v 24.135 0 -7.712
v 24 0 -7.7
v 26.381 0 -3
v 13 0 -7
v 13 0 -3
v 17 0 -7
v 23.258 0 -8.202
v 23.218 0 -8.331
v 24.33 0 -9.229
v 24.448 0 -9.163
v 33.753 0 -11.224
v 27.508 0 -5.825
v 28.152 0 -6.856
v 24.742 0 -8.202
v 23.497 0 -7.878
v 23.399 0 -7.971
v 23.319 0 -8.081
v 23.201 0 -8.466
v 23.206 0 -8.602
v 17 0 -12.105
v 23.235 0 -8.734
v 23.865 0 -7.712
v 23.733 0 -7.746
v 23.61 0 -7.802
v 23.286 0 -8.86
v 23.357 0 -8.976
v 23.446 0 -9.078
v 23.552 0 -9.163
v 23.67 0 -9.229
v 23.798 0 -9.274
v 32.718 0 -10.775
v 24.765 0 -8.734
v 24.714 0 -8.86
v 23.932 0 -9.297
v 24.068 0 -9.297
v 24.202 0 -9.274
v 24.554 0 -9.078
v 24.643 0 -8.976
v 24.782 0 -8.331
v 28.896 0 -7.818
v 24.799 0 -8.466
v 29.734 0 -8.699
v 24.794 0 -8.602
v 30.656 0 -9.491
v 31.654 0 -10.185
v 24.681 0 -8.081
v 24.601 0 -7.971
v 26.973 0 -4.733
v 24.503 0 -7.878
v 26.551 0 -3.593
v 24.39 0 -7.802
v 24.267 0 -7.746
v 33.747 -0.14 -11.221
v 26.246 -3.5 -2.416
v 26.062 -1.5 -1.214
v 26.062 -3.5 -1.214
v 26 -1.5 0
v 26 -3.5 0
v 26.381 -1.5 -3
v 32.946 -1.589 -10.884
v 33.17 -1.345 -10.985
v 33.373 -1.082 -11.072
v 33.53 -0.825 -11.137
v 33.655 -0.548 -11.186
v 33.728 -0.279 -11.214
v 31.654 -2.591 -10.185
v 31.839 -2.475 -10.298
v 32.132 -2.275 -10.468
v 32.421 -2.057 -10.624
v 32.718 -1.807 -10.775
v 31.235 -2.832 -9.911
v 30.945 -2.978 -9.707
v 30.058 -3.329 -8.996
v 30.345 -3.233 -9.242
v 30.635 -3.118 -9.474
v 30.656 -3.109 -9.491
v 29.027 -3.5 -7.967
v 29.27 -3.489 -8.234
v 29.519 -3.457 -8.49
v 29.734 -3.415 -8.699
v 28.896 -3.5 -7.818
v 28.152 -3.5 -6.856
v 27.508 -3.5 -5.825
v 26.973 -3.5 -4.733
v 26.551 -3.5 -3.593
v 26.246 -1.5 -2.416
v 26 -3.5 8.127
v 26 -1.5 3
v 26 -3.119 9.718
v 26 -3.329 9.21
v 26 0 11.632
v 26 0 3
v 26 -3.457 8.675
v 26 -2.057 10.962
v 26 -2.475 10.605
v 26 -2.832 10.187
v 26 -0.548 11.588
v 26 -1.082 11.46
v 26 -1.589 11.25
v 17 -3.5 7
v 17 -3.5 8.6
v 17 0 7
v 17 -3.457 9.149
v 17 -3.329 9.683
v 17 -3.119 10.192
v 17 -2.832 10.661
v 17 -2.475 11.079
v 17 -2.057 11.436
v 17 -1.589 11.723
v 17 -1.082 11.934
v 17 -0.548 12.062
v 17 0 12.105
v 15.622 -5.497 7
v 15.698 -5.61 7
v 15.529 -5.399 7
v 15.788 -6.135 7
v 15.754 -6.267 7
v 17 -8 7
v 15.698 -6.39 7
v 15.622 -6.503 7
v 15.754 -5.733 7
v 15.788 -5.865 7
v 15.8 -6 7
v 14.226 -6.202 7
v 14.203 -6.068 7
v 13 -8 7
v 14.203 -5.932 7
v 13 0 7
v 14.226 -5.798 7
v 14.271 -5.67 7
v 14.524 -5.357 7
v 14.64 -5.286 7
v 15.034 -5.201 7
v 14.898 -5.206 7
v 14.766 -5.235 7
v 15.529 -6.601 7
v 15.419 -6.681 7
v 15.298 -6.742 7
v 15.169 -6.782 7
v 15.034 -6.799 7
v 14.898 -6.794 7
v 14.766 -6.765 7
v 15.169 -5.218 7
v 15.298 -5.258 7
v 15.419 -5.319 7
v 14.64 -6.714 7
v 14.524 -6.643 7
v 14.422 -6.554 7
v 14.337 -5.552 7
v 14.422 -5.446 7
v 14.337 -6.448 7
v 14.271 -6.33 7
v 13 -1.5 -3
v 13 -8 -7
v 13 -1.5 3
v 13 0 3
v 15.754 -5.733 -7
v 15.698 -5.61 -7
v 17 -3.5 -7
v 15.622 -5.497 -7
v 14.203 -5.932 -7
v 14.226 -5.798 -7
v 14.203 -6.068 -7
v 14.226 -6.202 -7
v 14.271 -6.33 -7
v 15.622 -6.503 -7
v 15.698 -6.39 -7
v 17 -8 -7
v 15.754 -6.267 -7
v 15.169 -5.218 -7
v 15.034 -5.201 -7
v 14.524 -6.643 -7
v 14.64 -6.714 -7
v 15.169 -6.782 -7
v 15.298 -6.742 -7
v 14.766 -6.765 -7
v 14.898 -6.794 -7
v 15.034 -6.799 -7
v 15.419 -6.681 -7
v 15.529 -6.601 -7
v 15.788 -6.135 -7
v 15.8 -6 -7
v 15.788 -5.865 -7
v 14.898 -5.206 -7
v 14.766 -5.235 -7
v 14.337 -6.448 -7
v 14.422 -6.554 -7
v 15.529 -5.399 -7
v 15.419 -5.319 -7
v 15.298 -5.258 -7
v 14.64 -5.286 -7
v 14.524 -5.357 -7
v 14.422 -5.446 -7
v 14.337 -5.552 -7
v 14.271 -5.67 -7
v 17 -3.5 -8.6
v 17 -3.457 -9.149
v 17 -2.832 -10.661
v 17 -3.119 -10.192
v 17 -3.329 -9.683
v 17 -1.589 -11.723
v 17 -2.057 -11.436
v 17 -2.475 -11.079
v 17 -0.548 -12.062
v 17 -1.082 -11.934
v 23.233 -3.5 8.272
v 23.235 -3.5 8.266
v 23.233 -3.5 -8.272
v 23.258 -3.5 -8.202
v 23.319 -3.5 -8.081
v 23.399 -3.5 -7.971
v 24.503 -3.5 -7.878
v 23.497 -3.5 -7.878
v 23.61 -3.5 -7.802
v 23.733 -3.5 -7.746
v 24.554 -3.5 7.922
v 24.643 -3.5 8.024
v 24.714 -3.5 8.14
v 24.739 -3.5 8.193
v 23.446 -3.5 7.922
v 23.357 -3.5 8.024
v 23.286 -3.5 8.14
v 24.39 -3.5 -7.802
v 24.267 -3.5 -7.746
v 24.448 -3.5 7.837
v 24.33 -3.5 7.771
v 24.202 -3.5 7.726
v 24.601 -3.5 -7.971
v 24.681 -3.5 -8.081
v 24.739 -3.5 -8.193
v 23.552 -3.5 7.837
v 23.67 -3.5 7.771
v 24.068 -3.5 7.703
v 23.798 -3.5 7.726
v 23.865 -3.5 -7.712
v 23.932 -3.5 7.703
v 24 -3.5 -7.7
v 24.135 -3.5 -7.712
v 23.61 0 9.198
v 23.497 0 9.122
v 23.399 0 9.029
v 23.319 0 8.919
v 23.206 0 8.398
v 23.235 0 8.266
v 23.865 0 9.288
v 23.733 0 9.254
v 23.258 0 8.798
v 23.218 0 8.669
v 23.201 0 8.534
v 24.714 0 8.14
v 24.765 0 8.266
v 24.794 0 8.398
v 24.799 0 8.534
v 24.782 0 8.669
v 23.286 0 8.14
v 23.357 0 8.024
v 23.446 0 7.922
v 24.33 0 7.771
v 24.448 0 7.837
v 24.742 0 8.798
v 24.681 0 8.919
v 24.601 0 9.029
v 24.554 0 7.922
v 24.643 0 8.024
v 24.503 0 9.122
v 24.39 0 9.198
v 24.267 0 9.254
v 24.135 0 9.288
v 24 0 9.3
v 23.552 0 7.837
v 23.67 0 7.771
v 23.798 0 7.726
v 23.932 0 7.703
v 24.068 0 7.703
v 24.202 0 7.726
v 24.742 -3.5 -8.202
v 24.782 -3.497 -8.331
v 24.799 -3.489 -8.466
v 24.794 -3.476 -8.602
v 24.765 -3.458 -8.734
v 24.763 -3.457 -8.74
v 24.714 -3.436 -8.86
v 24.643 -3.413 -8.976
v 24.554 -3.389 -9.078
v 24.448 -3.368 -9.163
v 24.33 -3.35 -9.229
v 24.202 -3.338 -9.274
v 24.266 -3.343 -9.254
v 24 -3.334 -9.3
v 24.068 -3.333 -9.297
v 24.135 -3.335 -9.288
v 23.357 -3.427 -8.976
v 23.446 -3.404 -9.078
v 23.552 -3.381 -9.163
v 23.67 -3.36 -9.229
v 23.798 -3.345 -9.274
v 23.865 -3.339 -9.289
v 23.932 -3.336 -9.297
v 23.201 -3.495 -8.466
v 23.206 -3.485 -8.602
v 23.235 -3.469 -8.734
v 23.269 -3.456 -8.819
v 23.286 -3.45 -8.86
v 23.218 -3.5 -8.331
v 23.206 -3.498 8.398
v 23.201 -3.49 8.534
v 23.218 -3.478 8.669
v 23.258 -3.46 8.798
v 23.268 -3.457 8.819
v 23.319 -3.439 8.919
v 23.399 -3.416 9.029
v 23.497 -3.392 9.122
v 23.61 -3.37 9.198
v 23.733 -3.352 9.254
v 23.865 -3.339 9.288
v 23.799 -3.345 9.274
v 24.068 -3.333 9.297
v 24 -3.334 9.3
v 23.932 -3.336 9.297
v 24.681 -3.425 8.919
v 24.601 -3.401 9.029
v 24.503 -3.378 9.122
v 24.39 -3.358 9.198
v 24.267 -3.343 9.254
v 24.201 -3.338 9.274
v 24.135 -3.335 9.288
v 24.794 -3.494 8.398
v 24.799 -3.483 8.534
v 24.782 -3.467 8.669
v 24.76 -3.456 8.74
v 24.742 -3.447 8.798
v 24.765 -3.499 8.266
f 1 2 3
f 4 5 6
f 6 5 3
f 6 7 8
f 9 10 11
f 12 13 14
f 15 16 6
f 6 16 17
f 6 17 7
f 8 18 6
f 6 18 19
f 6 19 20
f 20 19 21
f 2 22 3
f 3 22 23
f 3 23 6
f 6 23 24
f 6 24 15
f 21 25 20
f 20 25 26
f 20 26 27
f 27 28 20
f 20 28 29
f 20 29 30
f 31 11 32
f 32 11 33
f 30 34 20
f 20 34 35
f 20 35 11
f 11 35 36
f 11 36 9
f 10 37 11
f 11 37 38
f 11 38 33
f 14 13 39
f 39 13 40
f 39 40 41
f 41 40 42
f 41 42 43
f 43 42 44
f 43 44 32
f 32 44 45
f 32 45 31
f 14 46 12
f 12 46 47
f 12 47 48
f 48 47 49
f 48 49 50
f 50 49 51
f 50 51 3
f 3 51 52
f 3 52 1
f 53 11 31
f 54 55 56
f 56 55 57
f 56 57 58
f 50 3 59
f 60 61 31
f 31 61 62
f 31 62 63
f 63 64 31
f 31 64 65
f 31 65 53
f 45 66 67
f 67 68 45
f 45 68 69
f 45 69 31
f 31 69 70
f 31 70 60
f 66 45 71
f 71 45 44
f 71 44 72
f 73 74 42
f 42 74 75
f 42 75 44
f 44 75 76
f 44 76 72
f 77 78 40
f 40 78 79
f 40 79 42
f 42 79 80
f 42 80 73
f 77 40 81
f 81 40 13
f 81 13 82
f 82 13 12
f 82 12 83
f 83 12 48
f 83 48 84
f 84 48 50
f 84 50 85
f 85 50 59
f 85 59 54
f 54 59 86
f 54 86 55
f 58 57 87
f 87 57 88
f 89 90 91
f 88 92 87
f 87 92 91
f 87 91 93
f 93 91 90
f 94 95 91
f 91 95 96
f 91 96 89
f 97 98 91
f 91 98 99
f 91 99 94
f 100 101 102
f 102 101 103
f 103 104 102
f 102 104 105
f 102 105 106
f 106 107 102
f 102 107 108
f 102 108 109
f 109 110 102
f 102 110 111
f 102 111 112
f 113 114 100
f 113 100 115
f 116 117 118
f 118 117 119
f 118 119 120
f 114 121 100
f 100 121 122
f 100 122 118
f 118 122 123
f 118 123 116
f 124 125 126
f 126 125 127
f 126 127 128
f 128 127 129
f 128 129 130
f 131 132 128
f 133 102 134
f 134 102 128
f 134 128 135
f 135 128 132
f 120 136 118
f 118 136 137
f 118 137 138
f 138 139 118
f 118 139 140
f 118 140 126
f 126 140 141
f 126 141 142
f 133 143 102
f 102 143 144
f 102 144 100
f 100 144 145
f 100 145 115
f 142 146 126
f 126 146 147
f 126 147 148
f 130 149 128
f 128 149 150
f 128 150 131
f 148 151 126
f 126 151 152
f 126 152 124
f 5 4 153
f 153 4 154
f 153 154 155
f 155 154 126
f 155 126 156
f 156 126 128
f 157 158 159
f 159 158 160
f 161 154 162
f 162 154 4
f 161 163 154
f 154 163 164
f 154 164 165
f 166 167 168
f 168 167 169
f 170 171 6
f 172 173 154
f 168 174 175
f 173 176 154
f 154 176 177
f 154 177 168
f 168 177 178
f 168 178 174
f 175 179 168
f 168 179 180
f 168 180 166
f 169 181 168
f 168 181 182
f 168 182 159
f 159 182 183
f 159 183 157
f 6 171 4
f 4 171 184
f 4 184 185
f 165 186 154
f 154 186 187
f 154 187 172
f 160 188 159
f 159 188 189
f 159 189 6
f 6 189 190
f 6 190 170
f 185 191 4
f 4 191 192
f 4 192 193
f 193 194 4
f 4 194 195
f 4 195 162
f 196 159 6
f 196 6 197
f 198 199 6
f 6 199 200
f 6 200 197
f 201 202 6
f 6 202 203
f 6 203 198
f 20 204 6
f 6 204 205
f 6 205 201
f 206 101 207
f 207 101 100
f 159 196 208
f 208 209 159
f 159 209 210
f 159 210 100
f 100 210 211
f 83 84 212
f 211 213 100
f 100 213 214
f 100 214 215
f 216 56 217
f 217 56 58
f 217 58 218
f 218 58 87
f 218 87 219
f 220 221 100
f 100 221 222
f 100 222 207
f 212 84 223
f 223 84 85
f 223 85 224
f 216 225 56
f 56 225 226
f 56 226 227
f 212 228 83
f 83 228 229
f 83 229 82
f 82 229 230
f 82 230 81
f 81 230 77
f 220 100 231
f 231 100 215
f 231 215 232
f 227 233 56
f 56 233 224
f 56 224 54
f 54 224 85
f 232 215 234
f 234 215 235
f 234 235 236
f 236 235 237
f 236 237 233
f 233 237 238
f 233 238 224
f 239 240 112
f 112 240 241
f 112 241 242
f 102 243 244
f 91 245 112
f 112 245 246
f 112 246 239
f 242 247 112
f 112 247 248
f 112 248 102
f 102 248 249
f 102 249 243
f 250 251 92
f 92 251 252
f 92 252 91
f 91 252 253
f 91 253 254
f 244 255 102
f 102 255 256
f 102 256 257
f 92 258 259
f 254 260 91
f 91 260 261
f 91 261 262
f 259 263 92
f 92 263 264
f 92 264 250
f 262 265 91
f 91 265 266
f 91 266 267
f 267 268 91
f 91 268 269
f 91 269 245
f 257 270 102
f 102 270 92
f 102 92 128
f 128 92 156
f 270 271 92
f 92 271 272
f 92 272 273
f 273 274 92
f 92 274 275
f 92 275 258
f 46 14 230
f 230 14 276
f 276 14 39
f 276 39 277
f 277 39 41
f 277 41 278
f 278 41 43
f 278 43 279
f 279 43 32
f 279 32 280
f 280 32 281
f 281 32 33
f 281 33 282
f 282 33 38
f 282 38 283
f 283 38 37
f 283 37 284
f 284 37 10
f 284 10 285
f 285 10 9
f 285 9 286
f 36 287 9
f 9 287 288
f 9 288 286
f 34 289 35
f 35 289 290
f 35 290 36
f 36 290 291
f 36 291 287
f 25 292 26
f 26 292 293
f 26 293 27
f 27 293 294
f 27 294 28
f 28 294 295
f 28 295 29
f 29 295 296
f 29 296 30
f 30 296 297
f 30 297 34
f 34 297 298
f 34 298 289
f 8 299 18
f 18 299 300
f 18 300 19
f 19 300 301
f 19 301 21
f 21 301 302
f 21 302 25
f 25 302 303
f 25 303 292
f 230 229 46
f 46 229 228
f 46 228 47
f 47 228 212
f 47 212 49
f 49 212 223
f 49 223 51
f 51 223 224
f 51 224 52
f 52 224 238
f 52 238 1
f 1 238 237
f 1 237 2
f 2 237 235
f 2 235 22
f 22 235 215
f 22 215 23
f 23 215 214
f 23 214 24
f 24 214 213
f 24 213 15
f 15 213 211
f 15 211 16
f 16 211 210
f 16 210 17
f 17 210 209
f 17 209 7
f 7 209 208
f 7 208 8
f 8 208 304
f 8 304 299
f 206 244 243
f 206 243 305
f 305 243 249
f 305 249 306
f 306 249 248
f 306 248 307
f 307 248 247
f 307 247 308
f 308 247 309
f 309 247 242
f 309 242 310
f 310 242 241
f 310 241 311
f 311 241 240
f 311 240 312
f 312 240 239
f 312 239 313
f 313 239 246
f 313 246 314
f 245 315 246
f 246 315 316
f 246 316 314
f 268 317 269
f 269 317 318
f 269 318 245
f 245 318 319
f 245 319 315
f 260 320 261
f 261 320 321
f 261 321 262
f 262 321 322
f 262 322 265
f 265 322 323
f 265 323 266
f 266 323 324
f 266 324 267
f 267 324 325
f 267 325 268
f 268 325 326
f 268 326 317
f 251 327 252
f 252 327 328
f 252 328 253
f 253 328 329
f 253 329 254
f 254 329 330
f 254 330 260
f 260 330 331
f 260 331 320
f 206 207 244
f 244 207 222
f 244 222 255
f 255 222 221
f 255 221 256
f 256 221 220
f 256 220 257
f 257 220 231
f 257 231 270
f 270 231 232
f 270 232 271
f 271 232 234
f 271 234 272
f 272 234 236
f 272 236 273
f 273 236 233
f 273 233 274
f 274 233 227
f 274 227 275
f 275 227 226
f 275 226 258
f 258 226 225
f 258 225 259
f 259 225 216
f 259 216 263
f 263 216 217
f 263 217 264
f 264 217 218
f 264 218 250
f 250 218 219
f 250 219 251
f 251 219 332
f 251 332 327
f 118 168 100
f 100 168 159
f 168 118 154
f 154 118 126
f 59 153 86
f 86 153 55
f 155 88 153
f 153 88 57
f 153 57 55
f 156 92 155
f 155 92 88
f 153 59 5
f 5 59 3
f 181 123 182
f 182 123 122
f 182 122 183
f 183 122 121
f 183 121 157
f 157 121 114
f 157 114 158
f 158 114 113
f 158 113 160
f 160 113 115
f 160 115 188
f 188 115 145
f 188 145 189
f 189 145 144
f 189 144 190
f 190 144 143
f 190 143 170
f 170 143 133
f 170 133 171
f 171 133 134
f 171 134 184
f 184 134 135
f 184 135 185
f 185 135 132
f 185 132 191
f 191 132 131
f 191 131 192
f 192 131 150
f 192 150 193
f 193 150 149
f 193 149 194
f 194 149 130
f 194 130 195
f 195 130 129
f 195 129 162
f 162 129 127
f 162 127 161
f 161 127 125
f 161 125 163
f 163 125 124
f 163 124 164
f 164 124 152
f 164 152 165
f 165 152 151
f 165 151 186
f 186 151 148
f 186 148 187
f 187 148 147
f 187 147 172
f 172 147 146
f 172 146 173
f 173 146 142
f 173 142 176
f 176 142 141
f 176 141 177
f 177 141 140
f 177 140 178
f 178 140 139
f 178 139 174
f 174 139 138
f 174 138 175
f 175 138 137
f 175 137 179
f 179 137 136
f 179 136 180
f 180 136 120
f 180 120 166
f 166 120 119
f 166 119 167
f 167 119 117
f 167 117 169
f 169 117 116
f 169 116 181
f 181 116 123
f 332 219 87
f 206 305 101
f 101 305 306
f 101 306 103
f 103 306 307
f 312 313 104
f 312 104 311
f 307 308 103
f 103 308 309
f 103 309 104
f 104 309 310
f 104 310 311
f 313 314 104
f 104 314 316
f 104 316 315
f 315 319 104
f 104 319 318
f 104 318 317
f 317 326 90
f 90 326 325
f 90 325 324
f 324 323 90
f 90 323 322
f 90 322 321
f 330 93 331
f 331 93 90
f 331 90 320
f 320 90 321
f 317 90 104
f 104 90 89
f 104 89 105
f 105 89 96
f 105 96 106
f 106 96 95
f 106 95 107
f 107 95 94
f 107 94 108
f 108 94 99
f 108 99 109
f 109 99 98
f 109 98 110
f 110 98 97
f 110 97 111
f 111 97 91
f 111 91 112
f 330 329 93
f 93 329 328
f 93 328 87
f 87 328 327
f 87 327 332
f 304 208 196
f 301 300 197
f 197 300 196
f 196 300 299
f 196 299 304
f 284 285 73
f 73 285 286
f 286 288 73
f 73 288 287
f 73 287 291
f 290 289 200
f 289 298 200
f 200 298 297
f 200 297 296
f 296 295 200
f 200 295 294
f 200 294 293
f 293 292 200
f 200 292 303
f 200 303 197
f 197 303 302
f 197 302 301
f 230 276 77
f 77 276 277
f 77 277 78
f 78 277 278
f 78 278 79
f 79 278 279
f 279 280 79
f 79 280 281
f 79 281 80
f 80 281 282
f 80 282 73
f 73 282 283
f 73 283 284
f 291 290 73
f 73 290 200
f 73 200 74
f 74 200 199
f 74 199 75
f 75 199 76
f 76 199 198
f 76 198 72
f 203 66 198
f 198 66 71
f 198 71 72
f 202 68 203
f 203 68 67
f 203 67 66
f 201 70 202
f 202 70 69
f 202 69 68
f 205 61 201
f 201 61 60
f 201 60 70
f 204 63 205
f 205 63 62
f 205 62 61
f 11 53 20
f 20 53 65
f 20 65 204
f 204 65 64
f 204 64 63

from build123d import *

# Parameters (mm, degrees)
BOSS_EXTRUDE1_DEPTH = 3.5
SKETCH2_R           = 0.8
SCREW_HOLES_DEPTH   = 37.028935124
SKETCH3_W           = 4
SKETCH3_H           = 14
BOSS_EXTRUDE2_DEPTH = 8
CUT_EXTRUDE1_DEPTH  = 1.5
CUT_EXTRUDE2_START  = 13
SKETCH5_R           = 0.8
CUT_EXTRUDE2_DEPTH  = 50.74008936
FILLET1_R           = 3.5


with BuildPart() as part:
    # Sketch1 → Boss-Extrude1 (new body)
    with BuildSketch(Plane(origin=(0, 0, 0), x_dir=(1, 0, 0), z_dir=(0, 1, 0))):
        with BuildLine():
            Line((17, -10), (17, -12.105263158))
            Line((17, -12.105263158), (26, -11.631578947))
            Line((26, -11.631578947), (26, 0))
            ThreePointArc((26, 0), (28.126845638, 6.820617489), (33.753470489, 11.223501553))
            Line((33.753470489, 11.223501553), (17, 12.105263158))
            Line((17, 12.105263158), (17, 10))
            Line((17, 10), (17, 7))
            Line((17, 7), (13, 7))
            Line((13, 7), (13, 0))
            Line((13, 0), (13, -7))
            Line((13, -7), (17, -7))
            Line((17, -7), (17, -10))
        make_face()
    extrude(amount=-BOSS_EXTRUDE1_DEPTH)

    # Sketch2 → Screw Holes (cut, through all)
    with BuildSketch(Plane(origin=(0, 0, 0), x_dir=(1, 0, 0), z_dir=(0, 1, 0))):
        with Locations(Location((24, 8.5, 0), (0, 0, 270))):
            Circle(SKETCH2_R)
        with Locations(Location((24, -8.5, 0), (0, 0, 270))):
            Circle(SKETCH2_R)
    extrude(amount=-SCREW_HOLES_DEPTH, mode=Mode.SUBTRACT)

    # Sketch3 → Boss-Extrude2 (add)
    with BuildSketch(Plane(origin=(0, 0, 0), x_dir=(1, 0, 0), z_dir=(0, 1, 0))):
        with Locations((15, 0)):
            Rectangle(SKETCH3_W, SKETCH3_H)
    extrude(amount=-BOSS_EXTRUDE2_DEPTH)

    # Sketch4 → Cut-Extrude1 (cut)
    with BuildSketch(Plane(origin=(0, 0, 0), x_dir=(1, 0, 0), z_dir=(0, 1, 0))):
        Polygon((13, 0), (13, 3), (26.381049961, 3), (26.381049961, -3), (13, -3), align=None)
    extrude(amount=-CUT_EXTRUDE1_DEPTH, mode=Mode.SUBTRACT)

    # Sketch5 → Cut-Extrude2 (cut, through all)
    with BuildSketch(Plane.XY.offset(CUT_EXTRUDE2_START)):
        with Locations((15, -6)):
            Circle(SKETCH5_R)
    extrude(amount=-CUT_EXTRUDE2_DEPTH, mode=Mode.SUBTRACT)

    # Fillet1
    # the kernel refuses this fillet: 3.5 mm, written as the material it takes off along each edge
    with BuildSketch(Plane(origin=(8.262093993, -3.5, 12.565152948), x_dir=(0, 1, 0), z_dir=(0.9986178293325098, 0, -0.05255883312276359))) as fillet1_piece_1_section:
        with BuildLine():
            CenterArc((FILLET1_R, -FILLET1_R), FILLET1_R, 90, 90)
            Line((0, -FILLET1_R), (-FILLET1_R * 0.02, -FILLET1_R))
            Line((-FILLET1_R * 0.02, -FILLET1_R), (-FILLET1_R * 0.02, FILLET1_R * 0.02))
            Line((-FILLET1_R * 0.02, FILLET1_R * 0.02), (FILLET1_R, FILLET1_R * 0.02))
            Line((FILLET1_R, FILLET1_R * 0.02), (FILLET1_R, 0))
        make_face()
    fillet1_piece_1 = extrude(amount=26.512456753, mode=Mode.PRIVATE)
    fillet1_piece_1 = split(fillet1_piece_1, bisect_by=Plane(origin=(17, -2.7076171, 11.074941428), z_dir=(1, 0, 0)), keep=Keep.TOP, mode=Mode.PRIVATE)
    fillet1_piece_1 = split(fillet1_piece_1, bisect_by=Plane(origin=(26, -2.7076171, 11.074941428), z_dir=(-1, 0, 0)), keep=Keep.TOP, mode=Mode.PRIVATE)
    add(fillet1_piece_1, mode=Mode.SUBTRACT)
    with BuildSketch(Plane(origin=(42.491376496, -3.5, -10.763611763), x_dir=(-0.05255883312276374, 0, 0.9986178293325098), z_dir=(-0.9986178293325098, 0, -0.05255883312276374))) as fillet1_piece_2_section:
        with BuildLine():
            CenterArc((FILLET1_R, FILLET1_R), FILLET1_R, 180, 90)
            Line((0, FILLET1_R), (-FILLET1_R * 0.02, FILLET1_R))
            Line((-FILLET1_R * 0.02, FILLET1_R), (-FILLET1_R * 0.02, -FILLET1_R * 0.02))
            Line((-FILLET1_R * 0.02, -FILLET1_R * 0.02), (FILLET1_R, -FILLET1_R * 0.02))
            Line((FILLET1_R, -FILLET1_R * 0.02), (FILLET1_R, 0))
        make_face()
    fillet1_piece_2 = extrude(amount=34.276658695, mode=Mode.PRIVATE)
    fillet1_piece_2 = split(fillet1_piece_2, bisect_by=Plane(origin=(17, -2.672351217, -10.961883327), z_dir=(1, 0, 0)), keep=Keep.TOP, mode=Mode.PRIVATE)
    fillet1_piece_2 = fillet1_piece_2 - Plane(origin=(38, -2.672351217, 0), x_dir=(-1, 0, 0), z_dir=(0, 1, 0)) * Cylinder(12, 83, mode=Mode.PRIVATE)
    add(fillet1_piece_2, mode=Mode.SUBTRACT)


solid = part.part
